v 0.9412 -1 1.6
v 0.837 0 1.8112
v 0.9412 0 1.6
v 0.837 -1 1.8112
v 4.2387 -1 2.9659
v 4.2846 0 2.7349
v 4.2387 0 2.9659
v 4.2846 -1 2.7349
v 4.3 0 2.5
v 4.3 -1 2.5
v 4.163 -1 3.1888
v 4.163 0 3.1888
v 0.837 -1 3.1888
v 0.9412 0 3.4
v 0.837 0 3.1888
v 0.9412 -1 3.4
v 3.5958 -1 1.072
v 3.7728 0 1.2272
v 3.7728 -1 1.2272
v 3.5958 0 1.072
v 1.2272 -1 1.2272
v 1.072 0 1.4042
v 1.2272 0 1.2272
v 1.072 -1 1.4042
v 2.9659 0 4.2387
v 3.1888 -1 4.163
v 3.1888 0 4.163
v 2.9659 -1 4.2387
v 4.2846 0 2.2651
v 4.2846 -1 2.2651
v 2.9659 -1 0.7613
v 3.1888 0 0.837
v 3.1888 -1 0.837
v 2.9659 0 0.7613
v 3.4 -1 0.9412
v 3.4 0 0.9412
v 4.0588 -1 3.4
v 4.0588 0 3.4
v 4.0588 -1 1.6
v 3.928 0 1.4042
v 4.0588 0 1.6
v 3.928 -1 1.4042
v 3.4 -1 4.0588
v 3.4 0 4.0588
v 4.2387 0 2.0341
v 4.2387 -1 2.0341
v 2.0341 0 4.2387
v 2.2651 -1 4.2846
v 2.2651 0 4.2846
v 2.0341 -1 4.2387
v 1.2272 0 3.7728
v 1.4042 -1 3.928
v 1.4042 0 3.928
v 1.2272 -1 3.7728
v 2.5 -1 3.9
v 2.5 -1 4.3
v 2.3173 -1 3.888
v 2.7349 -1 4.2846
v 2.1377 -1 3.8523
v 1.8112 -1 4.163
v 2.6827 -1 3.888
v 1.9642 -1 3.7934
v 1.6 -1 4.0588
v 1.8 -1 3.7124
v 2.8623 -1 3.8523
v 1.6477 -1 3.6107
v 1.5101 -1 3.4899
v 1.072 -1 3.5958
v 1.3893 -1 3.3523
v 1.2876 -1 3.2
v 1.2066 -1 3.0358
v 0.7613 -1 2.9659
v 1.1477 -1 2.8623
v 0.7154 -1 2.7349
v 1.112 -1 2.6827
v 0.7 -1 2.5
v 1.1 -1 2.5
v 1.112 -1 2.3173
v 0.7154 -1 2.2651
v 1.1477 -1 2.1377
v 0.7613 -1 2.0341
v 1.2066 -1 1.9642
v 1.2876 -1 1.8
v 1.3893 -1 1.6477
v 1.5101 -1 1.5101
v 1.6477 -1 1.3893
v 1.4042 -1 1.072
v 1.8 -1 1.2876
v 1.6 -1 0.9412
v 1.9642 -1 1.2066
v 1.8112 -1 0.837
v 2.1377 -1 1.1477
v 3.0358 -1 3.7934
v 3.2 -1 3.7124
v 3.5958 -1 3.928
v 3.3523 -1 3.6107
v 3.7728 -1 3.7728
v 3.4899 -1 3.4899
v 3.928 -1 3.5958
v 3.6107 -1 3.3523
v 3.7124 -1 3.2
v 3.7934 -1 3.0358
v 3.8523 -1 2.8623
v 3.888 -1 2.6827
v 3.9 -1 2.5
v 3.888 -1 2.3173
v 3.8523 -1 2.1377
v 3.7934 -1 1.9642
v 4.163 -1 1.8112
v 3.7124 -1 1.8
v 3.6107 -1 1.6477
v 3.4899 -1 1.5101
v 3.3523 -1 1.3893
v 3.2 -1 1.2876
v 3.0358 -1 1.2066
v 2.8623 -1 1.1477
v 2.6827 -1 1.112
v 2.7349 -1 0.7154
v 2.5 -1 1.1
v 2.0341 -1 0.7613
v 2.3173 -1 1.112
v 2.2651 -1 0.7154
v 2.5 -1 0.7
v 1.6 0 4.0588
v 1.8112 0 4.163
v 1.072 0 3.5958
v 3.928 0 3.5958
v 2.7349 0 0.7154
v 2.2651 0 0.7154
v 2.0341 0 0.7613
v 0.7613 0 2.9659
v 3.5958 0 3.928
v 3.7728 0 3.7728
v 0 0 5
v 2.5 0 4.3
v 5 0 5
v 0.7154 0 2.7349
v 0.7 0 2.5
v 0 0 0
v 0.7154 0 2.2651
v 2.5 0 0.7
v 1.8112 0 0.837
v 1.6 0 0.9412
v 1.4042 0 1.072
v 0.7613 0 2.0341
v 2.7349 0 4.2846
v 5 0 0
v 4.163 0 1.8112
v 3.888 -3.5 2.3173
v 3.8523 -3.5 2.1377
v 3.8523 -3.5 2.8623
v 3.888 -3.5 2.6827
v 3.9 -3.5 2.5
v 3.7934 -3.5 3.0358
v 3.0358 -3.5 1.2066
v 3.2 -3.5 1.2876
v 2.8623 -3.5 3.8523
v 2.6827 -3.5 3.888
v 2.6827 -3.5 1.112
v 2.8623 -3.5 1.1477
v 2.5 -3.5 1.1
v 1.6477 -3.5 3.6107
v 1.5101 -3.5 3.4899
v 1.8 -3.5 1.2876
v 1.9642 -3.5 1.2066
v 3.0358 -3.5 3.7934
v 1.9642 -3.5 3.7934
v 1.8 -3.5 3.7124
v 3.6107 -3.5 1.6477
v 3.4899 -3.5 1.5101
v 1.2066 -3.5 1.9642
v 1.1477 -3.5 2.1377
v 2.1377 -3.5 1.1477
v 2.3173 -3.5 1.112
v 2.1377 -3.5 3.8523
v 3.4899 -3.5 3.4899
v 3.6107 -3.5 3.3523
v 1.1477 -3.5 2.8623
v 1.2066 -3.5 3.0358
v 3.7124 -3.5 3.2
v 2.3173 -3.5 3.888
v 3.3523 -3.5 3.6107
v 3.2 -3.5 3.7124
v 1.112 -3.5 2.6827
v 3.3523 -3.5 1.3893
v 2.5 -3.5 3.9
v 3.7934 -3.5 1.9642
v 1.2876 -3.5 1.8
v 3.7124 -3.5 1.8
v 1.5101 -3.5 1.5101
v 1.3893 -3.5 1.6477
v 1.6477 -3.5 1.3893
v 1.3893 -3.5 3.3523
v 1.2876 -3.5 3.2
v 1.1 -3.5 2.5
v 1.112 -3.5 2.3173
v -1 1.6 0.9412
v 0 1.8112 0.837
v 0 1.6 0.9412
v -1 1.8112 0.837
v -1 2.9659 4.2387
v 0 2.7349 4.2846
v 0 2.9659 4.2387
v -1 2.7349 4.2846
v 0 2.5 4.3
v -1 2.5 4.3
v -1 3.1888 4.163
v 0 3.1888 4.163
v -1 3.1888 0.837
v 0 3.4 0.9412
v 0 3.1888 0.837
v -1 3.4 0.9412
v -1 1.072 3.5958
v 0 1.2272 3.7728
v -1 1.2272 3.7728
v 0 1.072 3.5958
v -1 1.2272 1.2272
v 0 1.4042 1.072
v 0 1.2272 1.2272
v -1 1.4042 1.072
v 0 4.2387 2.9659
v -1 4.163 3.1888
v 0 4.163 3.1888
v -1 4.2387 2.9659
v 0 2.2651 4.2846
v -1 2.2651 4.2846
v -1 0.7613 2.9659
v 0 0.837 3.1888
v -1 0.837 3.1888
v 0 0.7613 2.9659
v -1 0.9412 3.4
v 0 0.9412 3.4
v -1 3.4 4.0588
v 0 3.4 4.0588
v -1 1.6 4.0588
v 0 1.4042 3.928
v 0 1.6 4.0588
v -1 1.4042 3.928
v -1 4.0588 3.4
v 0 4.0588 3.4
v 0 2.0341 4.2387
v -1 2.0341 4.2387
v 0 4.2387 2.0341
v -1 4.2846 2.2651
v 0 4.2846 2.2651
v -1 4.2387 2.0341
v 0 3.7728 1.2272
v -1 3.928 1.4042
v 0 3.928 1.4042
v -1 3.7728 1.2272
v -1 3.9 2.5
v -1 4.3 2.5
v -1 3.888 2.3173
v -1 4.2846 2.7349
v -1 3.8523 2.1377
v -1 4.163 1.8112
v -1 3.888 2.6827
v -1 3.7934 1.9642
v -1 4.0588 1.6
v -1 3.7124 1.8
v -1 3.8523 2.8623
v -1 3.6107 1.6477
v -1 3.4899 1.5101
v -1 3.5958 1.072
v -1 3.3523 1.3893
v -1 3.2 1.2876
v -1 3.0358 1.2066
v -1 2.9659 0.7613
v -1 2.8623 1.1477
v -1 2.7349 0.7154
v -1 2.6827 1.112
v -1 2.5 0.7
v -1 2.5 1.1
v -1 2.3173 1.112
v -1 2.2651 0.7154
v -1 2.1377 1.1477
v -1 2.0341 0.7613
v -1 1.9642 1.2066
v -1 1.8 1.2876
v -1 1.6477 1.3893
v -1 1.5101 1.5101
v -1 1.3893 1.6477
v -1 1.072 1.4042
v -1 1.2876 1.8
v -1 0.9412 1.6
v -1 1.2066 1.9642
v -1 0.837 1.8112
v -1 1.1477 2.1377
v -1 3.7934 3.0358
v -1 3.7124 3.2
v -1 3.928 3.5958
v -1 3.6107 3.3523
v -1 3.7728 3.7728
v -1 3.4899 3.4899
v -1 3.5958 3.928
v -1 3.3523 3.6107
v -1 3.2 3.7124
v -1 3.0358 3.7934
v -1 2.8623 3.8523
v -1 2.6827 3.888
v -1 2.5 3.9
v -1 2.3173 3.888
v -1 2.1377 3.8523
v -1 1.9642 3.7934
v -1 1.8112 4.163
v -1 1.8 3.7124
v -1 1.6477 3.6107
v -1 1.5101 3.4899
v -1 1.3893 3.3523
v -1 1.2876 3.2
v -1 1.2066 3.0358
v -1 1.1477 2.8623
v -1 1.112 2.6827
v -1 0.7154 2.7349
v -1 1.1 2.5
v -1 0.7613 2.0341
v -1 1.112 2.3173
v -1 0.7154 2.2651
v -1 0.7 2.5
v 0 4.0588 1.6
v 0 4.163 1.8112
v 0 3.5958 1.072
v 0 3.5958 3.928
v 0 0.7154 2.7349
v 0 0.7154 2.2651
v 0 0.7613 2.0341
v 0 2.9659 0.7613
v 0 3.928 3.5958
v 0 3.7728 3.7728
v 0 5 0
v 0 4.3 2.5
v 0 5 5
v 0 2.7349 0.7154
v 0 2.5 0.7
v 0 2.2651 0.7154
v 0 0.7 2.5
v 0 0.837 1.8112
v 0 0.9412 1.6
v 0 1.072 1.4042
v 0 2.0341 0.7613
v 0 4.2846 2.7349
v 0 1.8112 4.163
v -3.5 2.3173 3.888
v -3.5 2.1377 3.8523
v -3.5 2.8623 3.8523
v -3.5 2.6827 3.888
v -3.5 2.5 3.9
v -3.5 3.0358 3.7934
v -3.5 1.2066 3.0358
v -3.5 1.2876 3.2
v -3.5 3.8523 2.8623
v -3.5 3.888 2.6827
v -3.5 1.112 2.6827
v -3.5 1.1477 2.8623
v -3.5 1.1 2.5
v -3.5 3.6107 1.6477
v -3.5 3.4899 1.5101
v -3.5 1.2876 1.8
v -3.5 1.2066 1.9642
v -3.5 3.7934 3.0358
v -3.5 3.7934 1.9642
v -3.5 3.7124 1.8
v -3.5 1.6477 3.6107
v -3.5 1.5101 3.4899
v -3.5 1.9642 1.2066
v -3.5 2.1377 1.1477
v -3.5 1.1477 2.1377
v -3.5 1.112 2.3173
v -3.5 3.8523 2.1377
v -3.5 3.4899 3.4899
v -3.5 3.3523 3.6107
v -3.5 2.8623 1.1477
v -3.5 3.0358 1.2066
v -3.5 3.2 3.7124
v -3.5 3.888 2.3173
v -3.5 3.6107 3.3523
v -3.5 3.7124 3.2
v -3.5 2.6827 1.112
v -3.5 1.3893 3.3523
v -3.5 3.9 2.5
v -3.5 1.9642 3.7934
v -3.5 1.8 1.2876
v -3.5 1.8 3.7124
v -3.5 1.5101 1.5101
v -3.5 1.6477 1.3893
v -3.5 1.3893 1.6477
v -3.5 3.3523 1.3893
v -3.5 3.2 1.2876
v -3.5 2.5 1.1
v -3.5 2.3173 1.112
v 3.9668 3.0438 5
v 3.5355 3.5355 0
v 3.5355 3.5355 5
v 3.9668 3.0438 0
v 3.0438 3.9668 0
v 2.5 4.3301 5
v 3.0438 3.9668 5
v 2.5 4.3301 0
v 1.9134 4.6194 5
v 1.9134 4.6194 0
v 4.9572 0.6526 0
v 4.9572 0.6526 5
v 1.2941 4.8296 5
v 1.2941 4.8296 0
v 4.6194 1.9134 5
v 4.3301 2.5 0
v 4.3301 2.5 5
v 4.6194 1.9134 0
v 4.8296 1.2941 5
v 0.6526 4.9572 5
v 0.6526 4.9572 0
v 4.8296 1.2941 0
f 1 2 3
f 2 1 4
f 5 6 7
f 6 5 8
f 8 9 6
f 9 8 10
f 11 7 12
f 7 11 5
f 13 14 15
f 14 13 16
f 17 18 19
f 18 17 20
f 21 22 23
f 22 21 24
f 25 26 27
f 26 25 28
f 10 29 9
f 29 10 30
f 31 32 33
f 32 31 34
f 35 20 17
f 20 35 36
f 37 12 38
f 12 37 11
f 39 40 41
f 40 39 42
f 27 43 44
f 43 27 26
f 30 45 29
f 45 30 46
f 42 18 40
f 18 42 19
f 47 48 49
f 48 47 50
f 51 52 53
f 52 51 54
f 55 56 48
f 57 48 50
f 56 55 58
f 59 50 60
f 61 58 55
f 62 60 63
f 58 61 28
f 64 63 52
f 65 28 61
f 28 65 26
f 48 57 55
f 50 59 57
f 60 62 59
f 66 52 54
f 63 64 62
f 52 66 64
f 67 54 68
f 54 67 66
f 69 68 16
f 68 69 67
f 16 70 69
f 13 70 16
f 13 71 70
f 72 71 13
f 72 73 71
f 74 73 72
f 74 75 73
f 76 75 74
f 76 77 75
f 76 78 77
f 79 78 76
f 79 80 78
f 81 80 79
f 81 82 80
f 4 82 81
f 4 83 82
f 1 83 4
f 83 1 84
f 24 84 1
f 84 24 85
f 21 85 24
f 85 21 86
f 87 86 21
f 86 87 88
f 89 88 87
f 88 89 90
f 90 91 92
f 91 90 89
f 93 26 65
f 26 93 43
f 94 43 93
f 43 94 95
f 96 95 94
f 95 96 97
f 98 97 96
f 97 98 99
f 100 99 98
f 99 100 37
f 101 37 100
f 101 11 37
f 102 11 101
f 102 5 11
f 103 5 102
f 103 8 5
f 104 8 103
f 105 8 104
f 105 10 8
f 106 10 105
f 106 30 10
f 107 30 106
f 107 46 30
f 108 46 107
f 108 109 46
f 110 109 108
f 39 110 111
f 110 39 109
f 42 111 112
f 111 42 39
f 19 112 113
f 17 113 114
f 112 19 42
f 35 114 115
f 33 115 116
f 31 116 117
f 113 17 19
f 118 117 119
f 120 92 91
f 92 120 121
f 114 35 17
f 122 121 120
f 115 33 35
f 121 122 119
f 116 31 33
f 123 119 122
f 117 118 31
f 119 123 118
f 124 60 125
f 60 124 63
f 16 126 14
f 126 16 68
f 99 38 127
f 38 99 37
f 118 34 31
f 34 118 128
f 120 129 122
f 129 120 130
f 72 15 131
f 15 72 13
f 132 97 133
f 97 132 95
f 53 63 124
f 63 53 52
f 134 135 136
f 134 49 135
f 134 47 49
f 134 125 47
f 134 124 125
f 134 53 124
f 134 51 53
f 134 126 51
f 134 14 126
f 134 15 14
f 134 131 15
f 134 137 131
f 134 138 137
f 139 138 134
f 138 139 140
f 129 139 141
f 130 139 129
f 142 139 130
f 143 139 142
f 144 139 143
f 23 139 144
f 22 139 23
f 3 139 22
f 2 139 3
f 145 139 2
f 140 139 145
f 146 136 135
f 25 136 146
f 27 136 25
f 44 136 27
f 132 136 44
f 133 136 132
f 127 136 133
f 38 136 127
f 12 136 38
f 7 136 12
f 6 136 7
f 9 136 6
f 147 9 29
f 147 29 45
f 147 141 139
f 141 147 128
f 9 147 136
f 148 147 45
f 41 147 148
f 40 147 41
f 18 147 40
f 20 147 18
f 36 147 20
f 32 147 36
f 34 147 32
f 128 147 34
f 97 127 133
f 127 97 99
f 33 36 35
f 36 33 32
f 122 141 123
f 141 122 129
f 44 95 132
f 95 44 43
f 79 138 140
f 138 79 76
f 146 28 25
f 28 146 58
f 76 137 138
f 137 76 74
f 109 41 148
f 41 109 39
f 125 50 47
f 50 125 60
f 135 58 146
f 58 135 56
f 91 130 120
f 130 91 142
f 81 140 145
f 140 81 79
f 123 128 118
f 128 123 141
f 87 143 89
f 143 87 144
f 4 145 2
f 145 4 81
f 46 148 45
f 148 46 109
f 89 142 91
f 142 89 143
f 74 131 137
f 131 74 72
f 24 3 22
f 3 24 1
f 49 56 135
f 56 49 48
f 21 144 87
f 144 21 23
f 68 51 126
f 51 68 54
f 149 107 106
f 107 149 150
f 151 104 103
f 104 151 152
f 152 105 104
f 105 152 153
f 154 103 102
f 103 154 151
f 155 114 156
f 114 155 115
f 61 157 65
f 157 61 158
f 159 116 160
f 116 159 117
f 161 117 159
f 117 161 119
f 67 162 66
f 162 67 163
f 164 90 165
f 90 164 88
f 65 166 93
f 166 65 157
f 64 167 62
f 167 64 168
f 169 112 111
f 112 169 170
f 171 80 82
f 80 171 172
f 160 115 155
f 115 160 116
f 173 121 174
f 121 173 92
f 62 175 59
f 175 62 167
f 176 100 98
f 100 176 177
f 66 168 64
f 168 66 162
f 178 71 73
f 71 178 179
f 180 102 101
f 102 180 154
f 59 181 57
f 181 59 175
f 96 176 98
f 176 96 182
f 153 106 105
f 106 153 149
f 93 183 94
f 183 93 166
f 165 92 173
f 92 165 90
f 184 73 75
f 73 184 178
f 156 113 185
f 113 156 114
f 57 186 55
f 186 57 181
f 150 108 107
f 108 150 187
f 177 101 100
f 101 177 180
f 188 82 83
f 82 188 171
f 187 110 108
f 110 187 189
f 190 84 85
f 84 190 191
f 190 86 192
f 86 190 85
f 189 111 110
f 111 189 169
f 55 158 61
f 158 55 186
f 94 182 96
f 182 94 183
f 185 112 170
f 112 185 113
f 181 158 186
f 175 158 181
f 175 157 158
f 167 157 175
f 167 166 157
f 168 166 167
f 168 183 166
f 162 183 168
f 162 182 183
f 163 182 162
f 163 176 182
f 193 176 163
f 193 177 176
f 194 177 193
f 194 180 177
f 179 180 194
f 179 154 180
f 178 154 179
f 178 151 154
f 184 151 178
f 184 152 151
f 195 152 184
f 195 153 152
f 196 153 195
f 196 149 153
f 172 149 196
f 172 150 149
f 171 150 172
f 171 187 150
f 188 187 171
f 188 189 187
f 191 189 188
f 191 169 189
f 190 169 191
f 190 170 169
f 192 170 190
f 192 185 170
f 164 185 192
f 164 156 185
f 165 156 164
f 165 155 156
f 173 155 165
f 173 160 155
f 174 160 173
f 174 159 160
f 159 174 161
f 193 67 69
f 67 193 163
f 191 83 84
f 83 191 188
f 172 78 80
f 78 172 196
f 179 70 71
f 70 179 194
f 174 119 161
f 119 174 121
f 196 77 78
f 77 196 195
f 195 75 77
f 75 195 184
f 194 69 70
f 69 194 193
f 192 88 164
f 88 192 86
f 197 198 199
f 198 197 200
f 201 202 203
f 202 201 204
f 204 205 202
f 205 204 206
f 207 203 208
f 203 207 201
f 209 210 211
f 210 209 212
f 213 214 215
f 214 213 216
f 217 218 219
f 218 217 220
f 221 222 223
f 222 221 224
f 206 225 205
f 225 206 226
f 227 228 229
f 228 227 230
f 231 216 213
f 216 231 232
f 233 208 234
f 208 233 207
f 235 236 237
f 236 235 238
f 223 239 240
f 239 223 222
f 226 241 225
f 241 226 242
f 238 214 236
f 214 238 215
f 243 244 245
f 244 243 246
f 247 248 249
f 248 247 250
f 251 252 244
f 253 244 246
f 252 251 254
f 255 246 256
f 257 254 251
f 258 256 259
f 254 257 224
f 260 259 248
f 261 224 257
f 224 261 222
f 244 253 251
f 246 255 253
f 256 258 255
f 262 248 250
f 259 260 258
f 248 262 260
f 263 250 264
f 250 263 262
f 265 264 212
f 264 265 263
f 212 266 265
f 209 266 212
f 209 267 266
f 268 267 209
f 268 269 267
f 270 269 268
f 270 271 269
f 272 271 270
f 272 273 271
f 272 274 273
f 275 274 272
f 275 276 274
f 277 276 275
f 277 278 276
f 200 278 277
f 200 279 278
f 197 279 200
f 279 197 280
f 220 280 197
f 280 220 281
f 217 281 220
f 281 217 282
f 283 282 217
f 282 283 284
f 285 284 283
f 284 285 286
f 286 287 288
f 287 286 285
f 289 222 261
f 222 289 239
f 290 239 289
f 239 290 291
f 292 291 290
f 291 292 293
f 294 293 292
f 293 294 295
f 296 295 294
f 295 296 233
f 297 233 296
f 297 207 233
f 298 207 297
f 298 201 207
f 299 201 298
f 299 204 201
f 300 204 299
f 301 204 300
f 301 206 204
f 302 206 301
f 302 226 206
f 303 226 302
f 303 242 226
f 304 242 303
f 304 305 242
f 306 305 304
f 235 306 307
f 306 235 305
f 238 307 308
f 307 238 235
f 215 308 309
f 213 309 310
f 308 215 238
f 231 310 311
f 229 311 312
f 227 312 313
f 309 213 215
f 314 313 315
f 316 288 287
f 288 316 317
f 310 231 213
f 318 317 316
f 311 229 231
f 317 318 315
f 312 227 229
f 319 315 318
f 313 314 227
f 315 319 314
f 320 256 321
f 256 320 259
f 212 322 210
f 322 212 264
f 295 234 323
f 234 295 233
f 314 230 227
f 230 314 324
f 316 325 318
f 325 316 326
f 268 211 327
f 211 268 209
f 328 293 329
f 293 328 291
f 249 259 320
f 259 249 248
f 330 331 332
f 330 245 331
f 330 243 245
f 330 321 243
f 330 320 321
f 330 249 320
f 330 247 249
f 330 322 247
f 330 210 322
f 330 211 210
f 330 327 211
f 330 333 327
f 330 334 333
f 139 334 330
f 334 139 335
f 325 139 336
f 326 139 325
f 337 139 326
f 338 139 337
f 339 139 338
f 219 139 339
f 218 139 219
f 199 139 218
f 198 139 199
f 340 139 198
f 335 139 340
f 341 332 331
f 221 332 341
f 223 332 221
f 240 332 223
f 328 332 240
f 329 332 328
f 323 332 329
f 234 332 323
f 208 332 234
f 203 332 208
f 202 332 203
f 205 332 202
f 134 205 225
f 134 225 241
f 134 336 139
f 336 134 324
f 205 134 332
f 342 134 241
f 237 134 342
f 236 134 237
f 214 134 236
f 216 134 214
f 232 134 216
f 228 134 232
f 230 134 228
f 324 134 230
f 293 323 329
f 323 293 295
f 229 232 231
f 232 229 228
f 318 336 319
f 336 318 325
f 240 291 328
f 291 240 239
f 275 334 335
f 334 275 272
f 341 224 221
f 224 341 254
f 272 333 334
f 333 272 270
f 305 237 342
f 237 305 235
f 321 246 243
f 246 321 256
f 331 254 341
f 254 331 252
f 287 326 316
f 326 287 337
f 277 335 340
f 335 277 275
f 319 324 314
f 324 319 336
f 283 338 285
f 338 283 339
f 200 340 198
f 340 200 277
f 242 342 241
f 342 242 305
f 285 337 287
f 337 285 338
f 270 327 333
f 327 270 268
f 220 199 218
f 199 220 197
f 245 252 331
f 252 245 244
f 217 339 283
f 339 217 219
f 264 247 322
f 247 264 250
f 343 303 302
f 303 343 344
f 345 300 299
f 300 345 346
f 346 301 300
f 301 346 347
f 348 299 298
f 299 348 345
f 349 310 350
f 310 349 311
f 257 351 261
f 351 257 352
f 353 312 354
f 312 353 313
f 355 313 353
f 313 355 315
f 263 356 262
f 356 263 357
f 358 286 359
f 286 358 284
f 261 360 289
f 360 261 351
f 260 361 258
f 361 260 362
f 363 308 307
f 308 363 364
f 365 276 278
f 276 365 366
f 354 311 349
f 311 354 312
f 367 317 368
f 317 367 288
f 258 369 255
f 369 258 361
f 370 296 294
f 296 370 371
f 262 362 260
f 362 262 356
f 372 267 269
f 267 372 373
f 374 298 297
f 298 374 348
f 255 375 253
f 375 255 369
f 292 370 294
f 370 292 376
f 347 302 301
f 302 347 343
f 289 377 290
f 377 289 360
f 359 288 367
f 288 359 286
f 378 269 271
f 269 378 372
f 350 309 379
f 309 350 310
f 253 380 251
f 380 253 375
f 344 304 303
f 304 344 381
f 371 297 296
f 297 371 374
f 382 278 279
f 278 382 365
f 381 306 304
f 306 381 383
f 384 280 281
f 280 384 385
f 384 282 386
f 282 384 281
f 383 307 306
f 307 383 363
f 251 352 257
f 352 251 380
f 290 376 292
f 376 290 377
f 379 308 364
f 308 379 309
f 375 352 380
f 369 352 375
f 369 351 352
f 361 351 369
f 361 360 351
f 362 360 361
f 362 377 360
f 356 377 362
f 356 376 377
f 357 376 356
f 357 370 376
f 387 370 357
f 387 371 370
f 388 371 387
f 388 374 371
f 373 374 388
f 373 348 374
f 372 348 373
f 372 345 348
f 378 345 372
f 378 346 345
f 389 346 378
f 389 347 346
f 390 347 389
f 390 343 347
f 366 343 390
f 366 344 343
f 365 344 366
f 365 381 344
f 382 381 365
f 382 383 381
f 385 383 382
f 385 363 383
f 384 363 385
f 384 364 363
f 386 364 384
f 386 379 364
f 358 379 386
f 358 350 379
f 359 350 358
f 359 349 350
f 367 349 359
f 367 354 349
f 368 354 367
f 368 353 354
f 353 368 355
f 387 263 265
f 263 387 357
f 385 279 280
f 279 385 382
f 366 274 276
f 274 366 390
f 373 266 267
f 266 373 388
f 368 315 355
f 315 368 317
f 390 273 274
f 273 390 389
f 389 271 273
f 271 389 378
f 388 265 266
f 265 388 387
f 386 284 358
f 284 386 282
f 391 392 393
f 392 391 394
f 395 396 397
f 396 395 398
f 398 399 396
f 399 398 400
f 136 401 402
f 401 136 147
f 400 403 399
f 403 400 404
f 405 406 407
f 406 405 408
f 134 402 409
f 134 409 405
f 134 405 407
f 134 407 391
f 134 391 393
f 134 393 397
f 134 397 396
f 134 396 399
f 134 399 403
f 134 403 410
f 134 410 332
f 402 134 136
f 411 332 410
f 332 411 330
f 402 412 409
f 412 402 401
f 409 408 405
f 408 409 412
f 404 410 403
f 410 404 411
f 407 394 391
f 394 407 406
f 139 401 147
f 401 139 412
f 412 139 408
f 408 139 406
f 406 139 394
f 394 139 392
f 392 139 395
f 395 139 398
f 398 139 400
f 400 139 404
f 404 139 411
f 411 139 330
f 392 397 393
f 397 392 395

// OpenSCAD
// ============================================================
// ELBOW — Design System 3D Modular
// ============================================================
// Curva 90° da interface de borda. Liga duas vigas (CORNER/PIN)
// ou furos de borda perpendiculares com o canto externo
// ARREDONDADO — substitui a quina viva do encaixe em L.
//
// Vista de cima (plano X-Y):
//
//        ╭──────┐
//       ╱       │ ← porta B (pino → canal da viga em X)
//      │   ◜    │
//      │  ╱     │
//      └──┴─────┘
//         ↑ porta A (pino → canal da viga em Y)
//
// Corpo: varredura de 90° da seção sec × sec, raio externo =
// sec (ocupa exatamente o volume 5×5×5 da quina). Faces planas
// em Y=0 (porta A, aponta -Y) e X=0 (porta B, aponta -X).
//
// Cada porta pode ser PINO (entra no canal/furo da outra peça)
// ou FURO (recebe pino). Com as duas portas em "hole", um canal
// curvo Ø3 atravessa a peça — fio vira a esquina por dentro.
//
// Parâmetros:
// - sec             : seção da curva (= thickness da PLATE)
// - port_a / port_b : "pin" ou "hole" em cada ponta
// - edge_*          : interface de borda (igual ao sistema)
// ============================================================

/* [Portas] */

// Porta A — face Y=0 (aponta -Y)
port_a = "pin"; // [pin, hole]

// Porta B — face X=0 (aponta -X)
port_b = "pin"; // [pin, hole]

/* [Tamanho] */

// Seção da curva (= thickness da PLATE / seção do CORNER)
sec = 5; // [3:0.5:20]

/* [Interface de borda — manter igual à PLATE/ATOM] */

// Diâmetro do furo de borda (mm)
edge_hole_d = 3; // [1:0.1:5]

// Profundidade do furo de borda (mm)
edge_hole_depth = 4; // [1:0.5:10]

// Comprimento total do pino (colar + haste)
edge_pin_len = 3.5; // [1:0.25:9]

// Largura radial do rebaixo/colar (0 = desativado)
edge_collar_w = 0.4; // [0:0.1:1]

// Profundidade do rebaixo / altura do colar (mm)
edge_collar_depth = 1; // [0.5:0.25:2]

/* [Bordas] */

// Raio de acabamento das arestas curvas (0 = arestas vivas)
// Aplica-se às 4 arestas que acompanham a curva; as faces das
// portas ficam planas para manter o encaixe flush
border_radius = 0; // [0:0.1:2]

// Estilo do acabamento das arestas: round (raio) ou chamfer (chanfro 45°)
border_style = "round"; // [round, chamfer]

/* [Tolerância de impressão] */

// Folga de encaixe
tolerance = 0.2; // [0:0.05:0.5]

/* [Qualidade] */
$fn = 48;

// ============================================================
// CALCULADOS
// ============================================================

edge_pin_d = edge_hole_d - tolerance;
collar_d   = edge_hole_d + 2 * edge_collar_w - tolerance;
recess_d   = edge_hole_d + 2 * edge_collar_w;

// Centro das portas (= centro da seção)
c = sec / 2;

// Raio seguro — limitado pela seção
safe_radius = min(border_radius, sec / 2 - 0.01);

// ============================================================
// MÓDULOS
// ============================================================

// Pino com colar na raiz — orientado em +Z a partir da origem
module edge_pin() {
    if (edge_collar_w > 0)
        cylinder(d = collar_d, h = edge_collar_depth);
    cylinder(d = edge_pin_d, h = edge_pin_len);
}

// Furo com rebaixo do colar — fura em -Z a partir da superfície
module edge_hole_cut() {
    eps = 0.01;
    rotate([180, 0, 0]) {
        cylinder(d = edge_hole_d, h = edge_hole_depth + eps);
        if (edge_collar_w > 0)
            cylinder(d = recess_d, h = edge_collar_depth + eps);
    }
}

// ------------------------------------------------------------
// Módulo: ELBOW completo
// Corpo ocupa o quarto de cilindro r=sec, z ∈ [0, sec]
// ------------------------------------------------------------
// Perfil da seção com acabamento nos cantos (round/chamfer)
module elbow_profile() {
    if (safe_radius <= 0) {
        square([sec, sec]);
    } else if (border_style == "chamfer") {
        offset(delta = safe_radius, chamfer = true)
            offset(delta = -safe_radius)
                square([sec, sec]);
    } else {
        offset(r = safe_radius)
            offset(delta = -safe_radius)
                square([sec, sec]);
    }
}

module elbow() {
    difference() {
        union() {
            // Corpo — varredura de 90° da seção (canto externo redondo)
            rotate_extrude(angle = 90)
                elbow_profile();

            // Pinos nas portas
            if (port_a == "pin")
                translate([c, 0, c]) rotate([90, 0, 0]) edge_pin();
            if (port_b == "pin")
                translate([0, c, c]) rotate([0, -90, 0]) edge_pin();
        }

        // Furos nas portas
        if (port_a == "hole")
            translate([c, 0, c]) rotate([-90, 0, 0]) rotate([180, 0, 0]) edge_hole_cut();
        if (port_b == "hole")
            translate([0, c, c]) rotate([0, 90, 0]) rotate([180, 0, 0]) edge_hole_cut();

        // Canal curvo — quando as duas portas são furo, o fio
        // vira a esquina por dentro da peça (arco de raio c
        // ligando os centros das duas portas, no plano z = c)
        if (port_a == "hole" && port_b == "hole")
            rotate_extrude(angle = 90)
                translate([c, c]) circle(d = edge_hole_d);
    }
}

// ============================================================
// RENDER
// ============================================================
part_color = [0.35, 0.38, 0.42];
color(part_color) elbow();

// ============================================================
// INFO — dimensões no console
// ============================================================
echo("=== ELBOW ===");
echo(str("Seção              : ", sec, " × ", sec, "mm, raio externo ", sec, "mm"));
echo(str("Portas             : A=", port_a, " B=", port_b));
echo(str("Pino               : Ø", edge_pin_d, "mm × ", edge_pin_len, "mm + colar Ø", collar_d, "mm × ", edge_collar_depth, "mm"));
echo(str("Canal curvo        : ", port_a == "hole" && port_b == "hole" ? str("Ø", edge_hole_d, "mm (fio vira a esquina)") : "não (precisa das 2 portas em hole)"));
echo(str("Tolerância         : ", tolerance, "mm"));
echo("---");
echo(str("Porta no centro da seção: ", c == sec / 2 ? "SIM" : "VERIFICAR"));
